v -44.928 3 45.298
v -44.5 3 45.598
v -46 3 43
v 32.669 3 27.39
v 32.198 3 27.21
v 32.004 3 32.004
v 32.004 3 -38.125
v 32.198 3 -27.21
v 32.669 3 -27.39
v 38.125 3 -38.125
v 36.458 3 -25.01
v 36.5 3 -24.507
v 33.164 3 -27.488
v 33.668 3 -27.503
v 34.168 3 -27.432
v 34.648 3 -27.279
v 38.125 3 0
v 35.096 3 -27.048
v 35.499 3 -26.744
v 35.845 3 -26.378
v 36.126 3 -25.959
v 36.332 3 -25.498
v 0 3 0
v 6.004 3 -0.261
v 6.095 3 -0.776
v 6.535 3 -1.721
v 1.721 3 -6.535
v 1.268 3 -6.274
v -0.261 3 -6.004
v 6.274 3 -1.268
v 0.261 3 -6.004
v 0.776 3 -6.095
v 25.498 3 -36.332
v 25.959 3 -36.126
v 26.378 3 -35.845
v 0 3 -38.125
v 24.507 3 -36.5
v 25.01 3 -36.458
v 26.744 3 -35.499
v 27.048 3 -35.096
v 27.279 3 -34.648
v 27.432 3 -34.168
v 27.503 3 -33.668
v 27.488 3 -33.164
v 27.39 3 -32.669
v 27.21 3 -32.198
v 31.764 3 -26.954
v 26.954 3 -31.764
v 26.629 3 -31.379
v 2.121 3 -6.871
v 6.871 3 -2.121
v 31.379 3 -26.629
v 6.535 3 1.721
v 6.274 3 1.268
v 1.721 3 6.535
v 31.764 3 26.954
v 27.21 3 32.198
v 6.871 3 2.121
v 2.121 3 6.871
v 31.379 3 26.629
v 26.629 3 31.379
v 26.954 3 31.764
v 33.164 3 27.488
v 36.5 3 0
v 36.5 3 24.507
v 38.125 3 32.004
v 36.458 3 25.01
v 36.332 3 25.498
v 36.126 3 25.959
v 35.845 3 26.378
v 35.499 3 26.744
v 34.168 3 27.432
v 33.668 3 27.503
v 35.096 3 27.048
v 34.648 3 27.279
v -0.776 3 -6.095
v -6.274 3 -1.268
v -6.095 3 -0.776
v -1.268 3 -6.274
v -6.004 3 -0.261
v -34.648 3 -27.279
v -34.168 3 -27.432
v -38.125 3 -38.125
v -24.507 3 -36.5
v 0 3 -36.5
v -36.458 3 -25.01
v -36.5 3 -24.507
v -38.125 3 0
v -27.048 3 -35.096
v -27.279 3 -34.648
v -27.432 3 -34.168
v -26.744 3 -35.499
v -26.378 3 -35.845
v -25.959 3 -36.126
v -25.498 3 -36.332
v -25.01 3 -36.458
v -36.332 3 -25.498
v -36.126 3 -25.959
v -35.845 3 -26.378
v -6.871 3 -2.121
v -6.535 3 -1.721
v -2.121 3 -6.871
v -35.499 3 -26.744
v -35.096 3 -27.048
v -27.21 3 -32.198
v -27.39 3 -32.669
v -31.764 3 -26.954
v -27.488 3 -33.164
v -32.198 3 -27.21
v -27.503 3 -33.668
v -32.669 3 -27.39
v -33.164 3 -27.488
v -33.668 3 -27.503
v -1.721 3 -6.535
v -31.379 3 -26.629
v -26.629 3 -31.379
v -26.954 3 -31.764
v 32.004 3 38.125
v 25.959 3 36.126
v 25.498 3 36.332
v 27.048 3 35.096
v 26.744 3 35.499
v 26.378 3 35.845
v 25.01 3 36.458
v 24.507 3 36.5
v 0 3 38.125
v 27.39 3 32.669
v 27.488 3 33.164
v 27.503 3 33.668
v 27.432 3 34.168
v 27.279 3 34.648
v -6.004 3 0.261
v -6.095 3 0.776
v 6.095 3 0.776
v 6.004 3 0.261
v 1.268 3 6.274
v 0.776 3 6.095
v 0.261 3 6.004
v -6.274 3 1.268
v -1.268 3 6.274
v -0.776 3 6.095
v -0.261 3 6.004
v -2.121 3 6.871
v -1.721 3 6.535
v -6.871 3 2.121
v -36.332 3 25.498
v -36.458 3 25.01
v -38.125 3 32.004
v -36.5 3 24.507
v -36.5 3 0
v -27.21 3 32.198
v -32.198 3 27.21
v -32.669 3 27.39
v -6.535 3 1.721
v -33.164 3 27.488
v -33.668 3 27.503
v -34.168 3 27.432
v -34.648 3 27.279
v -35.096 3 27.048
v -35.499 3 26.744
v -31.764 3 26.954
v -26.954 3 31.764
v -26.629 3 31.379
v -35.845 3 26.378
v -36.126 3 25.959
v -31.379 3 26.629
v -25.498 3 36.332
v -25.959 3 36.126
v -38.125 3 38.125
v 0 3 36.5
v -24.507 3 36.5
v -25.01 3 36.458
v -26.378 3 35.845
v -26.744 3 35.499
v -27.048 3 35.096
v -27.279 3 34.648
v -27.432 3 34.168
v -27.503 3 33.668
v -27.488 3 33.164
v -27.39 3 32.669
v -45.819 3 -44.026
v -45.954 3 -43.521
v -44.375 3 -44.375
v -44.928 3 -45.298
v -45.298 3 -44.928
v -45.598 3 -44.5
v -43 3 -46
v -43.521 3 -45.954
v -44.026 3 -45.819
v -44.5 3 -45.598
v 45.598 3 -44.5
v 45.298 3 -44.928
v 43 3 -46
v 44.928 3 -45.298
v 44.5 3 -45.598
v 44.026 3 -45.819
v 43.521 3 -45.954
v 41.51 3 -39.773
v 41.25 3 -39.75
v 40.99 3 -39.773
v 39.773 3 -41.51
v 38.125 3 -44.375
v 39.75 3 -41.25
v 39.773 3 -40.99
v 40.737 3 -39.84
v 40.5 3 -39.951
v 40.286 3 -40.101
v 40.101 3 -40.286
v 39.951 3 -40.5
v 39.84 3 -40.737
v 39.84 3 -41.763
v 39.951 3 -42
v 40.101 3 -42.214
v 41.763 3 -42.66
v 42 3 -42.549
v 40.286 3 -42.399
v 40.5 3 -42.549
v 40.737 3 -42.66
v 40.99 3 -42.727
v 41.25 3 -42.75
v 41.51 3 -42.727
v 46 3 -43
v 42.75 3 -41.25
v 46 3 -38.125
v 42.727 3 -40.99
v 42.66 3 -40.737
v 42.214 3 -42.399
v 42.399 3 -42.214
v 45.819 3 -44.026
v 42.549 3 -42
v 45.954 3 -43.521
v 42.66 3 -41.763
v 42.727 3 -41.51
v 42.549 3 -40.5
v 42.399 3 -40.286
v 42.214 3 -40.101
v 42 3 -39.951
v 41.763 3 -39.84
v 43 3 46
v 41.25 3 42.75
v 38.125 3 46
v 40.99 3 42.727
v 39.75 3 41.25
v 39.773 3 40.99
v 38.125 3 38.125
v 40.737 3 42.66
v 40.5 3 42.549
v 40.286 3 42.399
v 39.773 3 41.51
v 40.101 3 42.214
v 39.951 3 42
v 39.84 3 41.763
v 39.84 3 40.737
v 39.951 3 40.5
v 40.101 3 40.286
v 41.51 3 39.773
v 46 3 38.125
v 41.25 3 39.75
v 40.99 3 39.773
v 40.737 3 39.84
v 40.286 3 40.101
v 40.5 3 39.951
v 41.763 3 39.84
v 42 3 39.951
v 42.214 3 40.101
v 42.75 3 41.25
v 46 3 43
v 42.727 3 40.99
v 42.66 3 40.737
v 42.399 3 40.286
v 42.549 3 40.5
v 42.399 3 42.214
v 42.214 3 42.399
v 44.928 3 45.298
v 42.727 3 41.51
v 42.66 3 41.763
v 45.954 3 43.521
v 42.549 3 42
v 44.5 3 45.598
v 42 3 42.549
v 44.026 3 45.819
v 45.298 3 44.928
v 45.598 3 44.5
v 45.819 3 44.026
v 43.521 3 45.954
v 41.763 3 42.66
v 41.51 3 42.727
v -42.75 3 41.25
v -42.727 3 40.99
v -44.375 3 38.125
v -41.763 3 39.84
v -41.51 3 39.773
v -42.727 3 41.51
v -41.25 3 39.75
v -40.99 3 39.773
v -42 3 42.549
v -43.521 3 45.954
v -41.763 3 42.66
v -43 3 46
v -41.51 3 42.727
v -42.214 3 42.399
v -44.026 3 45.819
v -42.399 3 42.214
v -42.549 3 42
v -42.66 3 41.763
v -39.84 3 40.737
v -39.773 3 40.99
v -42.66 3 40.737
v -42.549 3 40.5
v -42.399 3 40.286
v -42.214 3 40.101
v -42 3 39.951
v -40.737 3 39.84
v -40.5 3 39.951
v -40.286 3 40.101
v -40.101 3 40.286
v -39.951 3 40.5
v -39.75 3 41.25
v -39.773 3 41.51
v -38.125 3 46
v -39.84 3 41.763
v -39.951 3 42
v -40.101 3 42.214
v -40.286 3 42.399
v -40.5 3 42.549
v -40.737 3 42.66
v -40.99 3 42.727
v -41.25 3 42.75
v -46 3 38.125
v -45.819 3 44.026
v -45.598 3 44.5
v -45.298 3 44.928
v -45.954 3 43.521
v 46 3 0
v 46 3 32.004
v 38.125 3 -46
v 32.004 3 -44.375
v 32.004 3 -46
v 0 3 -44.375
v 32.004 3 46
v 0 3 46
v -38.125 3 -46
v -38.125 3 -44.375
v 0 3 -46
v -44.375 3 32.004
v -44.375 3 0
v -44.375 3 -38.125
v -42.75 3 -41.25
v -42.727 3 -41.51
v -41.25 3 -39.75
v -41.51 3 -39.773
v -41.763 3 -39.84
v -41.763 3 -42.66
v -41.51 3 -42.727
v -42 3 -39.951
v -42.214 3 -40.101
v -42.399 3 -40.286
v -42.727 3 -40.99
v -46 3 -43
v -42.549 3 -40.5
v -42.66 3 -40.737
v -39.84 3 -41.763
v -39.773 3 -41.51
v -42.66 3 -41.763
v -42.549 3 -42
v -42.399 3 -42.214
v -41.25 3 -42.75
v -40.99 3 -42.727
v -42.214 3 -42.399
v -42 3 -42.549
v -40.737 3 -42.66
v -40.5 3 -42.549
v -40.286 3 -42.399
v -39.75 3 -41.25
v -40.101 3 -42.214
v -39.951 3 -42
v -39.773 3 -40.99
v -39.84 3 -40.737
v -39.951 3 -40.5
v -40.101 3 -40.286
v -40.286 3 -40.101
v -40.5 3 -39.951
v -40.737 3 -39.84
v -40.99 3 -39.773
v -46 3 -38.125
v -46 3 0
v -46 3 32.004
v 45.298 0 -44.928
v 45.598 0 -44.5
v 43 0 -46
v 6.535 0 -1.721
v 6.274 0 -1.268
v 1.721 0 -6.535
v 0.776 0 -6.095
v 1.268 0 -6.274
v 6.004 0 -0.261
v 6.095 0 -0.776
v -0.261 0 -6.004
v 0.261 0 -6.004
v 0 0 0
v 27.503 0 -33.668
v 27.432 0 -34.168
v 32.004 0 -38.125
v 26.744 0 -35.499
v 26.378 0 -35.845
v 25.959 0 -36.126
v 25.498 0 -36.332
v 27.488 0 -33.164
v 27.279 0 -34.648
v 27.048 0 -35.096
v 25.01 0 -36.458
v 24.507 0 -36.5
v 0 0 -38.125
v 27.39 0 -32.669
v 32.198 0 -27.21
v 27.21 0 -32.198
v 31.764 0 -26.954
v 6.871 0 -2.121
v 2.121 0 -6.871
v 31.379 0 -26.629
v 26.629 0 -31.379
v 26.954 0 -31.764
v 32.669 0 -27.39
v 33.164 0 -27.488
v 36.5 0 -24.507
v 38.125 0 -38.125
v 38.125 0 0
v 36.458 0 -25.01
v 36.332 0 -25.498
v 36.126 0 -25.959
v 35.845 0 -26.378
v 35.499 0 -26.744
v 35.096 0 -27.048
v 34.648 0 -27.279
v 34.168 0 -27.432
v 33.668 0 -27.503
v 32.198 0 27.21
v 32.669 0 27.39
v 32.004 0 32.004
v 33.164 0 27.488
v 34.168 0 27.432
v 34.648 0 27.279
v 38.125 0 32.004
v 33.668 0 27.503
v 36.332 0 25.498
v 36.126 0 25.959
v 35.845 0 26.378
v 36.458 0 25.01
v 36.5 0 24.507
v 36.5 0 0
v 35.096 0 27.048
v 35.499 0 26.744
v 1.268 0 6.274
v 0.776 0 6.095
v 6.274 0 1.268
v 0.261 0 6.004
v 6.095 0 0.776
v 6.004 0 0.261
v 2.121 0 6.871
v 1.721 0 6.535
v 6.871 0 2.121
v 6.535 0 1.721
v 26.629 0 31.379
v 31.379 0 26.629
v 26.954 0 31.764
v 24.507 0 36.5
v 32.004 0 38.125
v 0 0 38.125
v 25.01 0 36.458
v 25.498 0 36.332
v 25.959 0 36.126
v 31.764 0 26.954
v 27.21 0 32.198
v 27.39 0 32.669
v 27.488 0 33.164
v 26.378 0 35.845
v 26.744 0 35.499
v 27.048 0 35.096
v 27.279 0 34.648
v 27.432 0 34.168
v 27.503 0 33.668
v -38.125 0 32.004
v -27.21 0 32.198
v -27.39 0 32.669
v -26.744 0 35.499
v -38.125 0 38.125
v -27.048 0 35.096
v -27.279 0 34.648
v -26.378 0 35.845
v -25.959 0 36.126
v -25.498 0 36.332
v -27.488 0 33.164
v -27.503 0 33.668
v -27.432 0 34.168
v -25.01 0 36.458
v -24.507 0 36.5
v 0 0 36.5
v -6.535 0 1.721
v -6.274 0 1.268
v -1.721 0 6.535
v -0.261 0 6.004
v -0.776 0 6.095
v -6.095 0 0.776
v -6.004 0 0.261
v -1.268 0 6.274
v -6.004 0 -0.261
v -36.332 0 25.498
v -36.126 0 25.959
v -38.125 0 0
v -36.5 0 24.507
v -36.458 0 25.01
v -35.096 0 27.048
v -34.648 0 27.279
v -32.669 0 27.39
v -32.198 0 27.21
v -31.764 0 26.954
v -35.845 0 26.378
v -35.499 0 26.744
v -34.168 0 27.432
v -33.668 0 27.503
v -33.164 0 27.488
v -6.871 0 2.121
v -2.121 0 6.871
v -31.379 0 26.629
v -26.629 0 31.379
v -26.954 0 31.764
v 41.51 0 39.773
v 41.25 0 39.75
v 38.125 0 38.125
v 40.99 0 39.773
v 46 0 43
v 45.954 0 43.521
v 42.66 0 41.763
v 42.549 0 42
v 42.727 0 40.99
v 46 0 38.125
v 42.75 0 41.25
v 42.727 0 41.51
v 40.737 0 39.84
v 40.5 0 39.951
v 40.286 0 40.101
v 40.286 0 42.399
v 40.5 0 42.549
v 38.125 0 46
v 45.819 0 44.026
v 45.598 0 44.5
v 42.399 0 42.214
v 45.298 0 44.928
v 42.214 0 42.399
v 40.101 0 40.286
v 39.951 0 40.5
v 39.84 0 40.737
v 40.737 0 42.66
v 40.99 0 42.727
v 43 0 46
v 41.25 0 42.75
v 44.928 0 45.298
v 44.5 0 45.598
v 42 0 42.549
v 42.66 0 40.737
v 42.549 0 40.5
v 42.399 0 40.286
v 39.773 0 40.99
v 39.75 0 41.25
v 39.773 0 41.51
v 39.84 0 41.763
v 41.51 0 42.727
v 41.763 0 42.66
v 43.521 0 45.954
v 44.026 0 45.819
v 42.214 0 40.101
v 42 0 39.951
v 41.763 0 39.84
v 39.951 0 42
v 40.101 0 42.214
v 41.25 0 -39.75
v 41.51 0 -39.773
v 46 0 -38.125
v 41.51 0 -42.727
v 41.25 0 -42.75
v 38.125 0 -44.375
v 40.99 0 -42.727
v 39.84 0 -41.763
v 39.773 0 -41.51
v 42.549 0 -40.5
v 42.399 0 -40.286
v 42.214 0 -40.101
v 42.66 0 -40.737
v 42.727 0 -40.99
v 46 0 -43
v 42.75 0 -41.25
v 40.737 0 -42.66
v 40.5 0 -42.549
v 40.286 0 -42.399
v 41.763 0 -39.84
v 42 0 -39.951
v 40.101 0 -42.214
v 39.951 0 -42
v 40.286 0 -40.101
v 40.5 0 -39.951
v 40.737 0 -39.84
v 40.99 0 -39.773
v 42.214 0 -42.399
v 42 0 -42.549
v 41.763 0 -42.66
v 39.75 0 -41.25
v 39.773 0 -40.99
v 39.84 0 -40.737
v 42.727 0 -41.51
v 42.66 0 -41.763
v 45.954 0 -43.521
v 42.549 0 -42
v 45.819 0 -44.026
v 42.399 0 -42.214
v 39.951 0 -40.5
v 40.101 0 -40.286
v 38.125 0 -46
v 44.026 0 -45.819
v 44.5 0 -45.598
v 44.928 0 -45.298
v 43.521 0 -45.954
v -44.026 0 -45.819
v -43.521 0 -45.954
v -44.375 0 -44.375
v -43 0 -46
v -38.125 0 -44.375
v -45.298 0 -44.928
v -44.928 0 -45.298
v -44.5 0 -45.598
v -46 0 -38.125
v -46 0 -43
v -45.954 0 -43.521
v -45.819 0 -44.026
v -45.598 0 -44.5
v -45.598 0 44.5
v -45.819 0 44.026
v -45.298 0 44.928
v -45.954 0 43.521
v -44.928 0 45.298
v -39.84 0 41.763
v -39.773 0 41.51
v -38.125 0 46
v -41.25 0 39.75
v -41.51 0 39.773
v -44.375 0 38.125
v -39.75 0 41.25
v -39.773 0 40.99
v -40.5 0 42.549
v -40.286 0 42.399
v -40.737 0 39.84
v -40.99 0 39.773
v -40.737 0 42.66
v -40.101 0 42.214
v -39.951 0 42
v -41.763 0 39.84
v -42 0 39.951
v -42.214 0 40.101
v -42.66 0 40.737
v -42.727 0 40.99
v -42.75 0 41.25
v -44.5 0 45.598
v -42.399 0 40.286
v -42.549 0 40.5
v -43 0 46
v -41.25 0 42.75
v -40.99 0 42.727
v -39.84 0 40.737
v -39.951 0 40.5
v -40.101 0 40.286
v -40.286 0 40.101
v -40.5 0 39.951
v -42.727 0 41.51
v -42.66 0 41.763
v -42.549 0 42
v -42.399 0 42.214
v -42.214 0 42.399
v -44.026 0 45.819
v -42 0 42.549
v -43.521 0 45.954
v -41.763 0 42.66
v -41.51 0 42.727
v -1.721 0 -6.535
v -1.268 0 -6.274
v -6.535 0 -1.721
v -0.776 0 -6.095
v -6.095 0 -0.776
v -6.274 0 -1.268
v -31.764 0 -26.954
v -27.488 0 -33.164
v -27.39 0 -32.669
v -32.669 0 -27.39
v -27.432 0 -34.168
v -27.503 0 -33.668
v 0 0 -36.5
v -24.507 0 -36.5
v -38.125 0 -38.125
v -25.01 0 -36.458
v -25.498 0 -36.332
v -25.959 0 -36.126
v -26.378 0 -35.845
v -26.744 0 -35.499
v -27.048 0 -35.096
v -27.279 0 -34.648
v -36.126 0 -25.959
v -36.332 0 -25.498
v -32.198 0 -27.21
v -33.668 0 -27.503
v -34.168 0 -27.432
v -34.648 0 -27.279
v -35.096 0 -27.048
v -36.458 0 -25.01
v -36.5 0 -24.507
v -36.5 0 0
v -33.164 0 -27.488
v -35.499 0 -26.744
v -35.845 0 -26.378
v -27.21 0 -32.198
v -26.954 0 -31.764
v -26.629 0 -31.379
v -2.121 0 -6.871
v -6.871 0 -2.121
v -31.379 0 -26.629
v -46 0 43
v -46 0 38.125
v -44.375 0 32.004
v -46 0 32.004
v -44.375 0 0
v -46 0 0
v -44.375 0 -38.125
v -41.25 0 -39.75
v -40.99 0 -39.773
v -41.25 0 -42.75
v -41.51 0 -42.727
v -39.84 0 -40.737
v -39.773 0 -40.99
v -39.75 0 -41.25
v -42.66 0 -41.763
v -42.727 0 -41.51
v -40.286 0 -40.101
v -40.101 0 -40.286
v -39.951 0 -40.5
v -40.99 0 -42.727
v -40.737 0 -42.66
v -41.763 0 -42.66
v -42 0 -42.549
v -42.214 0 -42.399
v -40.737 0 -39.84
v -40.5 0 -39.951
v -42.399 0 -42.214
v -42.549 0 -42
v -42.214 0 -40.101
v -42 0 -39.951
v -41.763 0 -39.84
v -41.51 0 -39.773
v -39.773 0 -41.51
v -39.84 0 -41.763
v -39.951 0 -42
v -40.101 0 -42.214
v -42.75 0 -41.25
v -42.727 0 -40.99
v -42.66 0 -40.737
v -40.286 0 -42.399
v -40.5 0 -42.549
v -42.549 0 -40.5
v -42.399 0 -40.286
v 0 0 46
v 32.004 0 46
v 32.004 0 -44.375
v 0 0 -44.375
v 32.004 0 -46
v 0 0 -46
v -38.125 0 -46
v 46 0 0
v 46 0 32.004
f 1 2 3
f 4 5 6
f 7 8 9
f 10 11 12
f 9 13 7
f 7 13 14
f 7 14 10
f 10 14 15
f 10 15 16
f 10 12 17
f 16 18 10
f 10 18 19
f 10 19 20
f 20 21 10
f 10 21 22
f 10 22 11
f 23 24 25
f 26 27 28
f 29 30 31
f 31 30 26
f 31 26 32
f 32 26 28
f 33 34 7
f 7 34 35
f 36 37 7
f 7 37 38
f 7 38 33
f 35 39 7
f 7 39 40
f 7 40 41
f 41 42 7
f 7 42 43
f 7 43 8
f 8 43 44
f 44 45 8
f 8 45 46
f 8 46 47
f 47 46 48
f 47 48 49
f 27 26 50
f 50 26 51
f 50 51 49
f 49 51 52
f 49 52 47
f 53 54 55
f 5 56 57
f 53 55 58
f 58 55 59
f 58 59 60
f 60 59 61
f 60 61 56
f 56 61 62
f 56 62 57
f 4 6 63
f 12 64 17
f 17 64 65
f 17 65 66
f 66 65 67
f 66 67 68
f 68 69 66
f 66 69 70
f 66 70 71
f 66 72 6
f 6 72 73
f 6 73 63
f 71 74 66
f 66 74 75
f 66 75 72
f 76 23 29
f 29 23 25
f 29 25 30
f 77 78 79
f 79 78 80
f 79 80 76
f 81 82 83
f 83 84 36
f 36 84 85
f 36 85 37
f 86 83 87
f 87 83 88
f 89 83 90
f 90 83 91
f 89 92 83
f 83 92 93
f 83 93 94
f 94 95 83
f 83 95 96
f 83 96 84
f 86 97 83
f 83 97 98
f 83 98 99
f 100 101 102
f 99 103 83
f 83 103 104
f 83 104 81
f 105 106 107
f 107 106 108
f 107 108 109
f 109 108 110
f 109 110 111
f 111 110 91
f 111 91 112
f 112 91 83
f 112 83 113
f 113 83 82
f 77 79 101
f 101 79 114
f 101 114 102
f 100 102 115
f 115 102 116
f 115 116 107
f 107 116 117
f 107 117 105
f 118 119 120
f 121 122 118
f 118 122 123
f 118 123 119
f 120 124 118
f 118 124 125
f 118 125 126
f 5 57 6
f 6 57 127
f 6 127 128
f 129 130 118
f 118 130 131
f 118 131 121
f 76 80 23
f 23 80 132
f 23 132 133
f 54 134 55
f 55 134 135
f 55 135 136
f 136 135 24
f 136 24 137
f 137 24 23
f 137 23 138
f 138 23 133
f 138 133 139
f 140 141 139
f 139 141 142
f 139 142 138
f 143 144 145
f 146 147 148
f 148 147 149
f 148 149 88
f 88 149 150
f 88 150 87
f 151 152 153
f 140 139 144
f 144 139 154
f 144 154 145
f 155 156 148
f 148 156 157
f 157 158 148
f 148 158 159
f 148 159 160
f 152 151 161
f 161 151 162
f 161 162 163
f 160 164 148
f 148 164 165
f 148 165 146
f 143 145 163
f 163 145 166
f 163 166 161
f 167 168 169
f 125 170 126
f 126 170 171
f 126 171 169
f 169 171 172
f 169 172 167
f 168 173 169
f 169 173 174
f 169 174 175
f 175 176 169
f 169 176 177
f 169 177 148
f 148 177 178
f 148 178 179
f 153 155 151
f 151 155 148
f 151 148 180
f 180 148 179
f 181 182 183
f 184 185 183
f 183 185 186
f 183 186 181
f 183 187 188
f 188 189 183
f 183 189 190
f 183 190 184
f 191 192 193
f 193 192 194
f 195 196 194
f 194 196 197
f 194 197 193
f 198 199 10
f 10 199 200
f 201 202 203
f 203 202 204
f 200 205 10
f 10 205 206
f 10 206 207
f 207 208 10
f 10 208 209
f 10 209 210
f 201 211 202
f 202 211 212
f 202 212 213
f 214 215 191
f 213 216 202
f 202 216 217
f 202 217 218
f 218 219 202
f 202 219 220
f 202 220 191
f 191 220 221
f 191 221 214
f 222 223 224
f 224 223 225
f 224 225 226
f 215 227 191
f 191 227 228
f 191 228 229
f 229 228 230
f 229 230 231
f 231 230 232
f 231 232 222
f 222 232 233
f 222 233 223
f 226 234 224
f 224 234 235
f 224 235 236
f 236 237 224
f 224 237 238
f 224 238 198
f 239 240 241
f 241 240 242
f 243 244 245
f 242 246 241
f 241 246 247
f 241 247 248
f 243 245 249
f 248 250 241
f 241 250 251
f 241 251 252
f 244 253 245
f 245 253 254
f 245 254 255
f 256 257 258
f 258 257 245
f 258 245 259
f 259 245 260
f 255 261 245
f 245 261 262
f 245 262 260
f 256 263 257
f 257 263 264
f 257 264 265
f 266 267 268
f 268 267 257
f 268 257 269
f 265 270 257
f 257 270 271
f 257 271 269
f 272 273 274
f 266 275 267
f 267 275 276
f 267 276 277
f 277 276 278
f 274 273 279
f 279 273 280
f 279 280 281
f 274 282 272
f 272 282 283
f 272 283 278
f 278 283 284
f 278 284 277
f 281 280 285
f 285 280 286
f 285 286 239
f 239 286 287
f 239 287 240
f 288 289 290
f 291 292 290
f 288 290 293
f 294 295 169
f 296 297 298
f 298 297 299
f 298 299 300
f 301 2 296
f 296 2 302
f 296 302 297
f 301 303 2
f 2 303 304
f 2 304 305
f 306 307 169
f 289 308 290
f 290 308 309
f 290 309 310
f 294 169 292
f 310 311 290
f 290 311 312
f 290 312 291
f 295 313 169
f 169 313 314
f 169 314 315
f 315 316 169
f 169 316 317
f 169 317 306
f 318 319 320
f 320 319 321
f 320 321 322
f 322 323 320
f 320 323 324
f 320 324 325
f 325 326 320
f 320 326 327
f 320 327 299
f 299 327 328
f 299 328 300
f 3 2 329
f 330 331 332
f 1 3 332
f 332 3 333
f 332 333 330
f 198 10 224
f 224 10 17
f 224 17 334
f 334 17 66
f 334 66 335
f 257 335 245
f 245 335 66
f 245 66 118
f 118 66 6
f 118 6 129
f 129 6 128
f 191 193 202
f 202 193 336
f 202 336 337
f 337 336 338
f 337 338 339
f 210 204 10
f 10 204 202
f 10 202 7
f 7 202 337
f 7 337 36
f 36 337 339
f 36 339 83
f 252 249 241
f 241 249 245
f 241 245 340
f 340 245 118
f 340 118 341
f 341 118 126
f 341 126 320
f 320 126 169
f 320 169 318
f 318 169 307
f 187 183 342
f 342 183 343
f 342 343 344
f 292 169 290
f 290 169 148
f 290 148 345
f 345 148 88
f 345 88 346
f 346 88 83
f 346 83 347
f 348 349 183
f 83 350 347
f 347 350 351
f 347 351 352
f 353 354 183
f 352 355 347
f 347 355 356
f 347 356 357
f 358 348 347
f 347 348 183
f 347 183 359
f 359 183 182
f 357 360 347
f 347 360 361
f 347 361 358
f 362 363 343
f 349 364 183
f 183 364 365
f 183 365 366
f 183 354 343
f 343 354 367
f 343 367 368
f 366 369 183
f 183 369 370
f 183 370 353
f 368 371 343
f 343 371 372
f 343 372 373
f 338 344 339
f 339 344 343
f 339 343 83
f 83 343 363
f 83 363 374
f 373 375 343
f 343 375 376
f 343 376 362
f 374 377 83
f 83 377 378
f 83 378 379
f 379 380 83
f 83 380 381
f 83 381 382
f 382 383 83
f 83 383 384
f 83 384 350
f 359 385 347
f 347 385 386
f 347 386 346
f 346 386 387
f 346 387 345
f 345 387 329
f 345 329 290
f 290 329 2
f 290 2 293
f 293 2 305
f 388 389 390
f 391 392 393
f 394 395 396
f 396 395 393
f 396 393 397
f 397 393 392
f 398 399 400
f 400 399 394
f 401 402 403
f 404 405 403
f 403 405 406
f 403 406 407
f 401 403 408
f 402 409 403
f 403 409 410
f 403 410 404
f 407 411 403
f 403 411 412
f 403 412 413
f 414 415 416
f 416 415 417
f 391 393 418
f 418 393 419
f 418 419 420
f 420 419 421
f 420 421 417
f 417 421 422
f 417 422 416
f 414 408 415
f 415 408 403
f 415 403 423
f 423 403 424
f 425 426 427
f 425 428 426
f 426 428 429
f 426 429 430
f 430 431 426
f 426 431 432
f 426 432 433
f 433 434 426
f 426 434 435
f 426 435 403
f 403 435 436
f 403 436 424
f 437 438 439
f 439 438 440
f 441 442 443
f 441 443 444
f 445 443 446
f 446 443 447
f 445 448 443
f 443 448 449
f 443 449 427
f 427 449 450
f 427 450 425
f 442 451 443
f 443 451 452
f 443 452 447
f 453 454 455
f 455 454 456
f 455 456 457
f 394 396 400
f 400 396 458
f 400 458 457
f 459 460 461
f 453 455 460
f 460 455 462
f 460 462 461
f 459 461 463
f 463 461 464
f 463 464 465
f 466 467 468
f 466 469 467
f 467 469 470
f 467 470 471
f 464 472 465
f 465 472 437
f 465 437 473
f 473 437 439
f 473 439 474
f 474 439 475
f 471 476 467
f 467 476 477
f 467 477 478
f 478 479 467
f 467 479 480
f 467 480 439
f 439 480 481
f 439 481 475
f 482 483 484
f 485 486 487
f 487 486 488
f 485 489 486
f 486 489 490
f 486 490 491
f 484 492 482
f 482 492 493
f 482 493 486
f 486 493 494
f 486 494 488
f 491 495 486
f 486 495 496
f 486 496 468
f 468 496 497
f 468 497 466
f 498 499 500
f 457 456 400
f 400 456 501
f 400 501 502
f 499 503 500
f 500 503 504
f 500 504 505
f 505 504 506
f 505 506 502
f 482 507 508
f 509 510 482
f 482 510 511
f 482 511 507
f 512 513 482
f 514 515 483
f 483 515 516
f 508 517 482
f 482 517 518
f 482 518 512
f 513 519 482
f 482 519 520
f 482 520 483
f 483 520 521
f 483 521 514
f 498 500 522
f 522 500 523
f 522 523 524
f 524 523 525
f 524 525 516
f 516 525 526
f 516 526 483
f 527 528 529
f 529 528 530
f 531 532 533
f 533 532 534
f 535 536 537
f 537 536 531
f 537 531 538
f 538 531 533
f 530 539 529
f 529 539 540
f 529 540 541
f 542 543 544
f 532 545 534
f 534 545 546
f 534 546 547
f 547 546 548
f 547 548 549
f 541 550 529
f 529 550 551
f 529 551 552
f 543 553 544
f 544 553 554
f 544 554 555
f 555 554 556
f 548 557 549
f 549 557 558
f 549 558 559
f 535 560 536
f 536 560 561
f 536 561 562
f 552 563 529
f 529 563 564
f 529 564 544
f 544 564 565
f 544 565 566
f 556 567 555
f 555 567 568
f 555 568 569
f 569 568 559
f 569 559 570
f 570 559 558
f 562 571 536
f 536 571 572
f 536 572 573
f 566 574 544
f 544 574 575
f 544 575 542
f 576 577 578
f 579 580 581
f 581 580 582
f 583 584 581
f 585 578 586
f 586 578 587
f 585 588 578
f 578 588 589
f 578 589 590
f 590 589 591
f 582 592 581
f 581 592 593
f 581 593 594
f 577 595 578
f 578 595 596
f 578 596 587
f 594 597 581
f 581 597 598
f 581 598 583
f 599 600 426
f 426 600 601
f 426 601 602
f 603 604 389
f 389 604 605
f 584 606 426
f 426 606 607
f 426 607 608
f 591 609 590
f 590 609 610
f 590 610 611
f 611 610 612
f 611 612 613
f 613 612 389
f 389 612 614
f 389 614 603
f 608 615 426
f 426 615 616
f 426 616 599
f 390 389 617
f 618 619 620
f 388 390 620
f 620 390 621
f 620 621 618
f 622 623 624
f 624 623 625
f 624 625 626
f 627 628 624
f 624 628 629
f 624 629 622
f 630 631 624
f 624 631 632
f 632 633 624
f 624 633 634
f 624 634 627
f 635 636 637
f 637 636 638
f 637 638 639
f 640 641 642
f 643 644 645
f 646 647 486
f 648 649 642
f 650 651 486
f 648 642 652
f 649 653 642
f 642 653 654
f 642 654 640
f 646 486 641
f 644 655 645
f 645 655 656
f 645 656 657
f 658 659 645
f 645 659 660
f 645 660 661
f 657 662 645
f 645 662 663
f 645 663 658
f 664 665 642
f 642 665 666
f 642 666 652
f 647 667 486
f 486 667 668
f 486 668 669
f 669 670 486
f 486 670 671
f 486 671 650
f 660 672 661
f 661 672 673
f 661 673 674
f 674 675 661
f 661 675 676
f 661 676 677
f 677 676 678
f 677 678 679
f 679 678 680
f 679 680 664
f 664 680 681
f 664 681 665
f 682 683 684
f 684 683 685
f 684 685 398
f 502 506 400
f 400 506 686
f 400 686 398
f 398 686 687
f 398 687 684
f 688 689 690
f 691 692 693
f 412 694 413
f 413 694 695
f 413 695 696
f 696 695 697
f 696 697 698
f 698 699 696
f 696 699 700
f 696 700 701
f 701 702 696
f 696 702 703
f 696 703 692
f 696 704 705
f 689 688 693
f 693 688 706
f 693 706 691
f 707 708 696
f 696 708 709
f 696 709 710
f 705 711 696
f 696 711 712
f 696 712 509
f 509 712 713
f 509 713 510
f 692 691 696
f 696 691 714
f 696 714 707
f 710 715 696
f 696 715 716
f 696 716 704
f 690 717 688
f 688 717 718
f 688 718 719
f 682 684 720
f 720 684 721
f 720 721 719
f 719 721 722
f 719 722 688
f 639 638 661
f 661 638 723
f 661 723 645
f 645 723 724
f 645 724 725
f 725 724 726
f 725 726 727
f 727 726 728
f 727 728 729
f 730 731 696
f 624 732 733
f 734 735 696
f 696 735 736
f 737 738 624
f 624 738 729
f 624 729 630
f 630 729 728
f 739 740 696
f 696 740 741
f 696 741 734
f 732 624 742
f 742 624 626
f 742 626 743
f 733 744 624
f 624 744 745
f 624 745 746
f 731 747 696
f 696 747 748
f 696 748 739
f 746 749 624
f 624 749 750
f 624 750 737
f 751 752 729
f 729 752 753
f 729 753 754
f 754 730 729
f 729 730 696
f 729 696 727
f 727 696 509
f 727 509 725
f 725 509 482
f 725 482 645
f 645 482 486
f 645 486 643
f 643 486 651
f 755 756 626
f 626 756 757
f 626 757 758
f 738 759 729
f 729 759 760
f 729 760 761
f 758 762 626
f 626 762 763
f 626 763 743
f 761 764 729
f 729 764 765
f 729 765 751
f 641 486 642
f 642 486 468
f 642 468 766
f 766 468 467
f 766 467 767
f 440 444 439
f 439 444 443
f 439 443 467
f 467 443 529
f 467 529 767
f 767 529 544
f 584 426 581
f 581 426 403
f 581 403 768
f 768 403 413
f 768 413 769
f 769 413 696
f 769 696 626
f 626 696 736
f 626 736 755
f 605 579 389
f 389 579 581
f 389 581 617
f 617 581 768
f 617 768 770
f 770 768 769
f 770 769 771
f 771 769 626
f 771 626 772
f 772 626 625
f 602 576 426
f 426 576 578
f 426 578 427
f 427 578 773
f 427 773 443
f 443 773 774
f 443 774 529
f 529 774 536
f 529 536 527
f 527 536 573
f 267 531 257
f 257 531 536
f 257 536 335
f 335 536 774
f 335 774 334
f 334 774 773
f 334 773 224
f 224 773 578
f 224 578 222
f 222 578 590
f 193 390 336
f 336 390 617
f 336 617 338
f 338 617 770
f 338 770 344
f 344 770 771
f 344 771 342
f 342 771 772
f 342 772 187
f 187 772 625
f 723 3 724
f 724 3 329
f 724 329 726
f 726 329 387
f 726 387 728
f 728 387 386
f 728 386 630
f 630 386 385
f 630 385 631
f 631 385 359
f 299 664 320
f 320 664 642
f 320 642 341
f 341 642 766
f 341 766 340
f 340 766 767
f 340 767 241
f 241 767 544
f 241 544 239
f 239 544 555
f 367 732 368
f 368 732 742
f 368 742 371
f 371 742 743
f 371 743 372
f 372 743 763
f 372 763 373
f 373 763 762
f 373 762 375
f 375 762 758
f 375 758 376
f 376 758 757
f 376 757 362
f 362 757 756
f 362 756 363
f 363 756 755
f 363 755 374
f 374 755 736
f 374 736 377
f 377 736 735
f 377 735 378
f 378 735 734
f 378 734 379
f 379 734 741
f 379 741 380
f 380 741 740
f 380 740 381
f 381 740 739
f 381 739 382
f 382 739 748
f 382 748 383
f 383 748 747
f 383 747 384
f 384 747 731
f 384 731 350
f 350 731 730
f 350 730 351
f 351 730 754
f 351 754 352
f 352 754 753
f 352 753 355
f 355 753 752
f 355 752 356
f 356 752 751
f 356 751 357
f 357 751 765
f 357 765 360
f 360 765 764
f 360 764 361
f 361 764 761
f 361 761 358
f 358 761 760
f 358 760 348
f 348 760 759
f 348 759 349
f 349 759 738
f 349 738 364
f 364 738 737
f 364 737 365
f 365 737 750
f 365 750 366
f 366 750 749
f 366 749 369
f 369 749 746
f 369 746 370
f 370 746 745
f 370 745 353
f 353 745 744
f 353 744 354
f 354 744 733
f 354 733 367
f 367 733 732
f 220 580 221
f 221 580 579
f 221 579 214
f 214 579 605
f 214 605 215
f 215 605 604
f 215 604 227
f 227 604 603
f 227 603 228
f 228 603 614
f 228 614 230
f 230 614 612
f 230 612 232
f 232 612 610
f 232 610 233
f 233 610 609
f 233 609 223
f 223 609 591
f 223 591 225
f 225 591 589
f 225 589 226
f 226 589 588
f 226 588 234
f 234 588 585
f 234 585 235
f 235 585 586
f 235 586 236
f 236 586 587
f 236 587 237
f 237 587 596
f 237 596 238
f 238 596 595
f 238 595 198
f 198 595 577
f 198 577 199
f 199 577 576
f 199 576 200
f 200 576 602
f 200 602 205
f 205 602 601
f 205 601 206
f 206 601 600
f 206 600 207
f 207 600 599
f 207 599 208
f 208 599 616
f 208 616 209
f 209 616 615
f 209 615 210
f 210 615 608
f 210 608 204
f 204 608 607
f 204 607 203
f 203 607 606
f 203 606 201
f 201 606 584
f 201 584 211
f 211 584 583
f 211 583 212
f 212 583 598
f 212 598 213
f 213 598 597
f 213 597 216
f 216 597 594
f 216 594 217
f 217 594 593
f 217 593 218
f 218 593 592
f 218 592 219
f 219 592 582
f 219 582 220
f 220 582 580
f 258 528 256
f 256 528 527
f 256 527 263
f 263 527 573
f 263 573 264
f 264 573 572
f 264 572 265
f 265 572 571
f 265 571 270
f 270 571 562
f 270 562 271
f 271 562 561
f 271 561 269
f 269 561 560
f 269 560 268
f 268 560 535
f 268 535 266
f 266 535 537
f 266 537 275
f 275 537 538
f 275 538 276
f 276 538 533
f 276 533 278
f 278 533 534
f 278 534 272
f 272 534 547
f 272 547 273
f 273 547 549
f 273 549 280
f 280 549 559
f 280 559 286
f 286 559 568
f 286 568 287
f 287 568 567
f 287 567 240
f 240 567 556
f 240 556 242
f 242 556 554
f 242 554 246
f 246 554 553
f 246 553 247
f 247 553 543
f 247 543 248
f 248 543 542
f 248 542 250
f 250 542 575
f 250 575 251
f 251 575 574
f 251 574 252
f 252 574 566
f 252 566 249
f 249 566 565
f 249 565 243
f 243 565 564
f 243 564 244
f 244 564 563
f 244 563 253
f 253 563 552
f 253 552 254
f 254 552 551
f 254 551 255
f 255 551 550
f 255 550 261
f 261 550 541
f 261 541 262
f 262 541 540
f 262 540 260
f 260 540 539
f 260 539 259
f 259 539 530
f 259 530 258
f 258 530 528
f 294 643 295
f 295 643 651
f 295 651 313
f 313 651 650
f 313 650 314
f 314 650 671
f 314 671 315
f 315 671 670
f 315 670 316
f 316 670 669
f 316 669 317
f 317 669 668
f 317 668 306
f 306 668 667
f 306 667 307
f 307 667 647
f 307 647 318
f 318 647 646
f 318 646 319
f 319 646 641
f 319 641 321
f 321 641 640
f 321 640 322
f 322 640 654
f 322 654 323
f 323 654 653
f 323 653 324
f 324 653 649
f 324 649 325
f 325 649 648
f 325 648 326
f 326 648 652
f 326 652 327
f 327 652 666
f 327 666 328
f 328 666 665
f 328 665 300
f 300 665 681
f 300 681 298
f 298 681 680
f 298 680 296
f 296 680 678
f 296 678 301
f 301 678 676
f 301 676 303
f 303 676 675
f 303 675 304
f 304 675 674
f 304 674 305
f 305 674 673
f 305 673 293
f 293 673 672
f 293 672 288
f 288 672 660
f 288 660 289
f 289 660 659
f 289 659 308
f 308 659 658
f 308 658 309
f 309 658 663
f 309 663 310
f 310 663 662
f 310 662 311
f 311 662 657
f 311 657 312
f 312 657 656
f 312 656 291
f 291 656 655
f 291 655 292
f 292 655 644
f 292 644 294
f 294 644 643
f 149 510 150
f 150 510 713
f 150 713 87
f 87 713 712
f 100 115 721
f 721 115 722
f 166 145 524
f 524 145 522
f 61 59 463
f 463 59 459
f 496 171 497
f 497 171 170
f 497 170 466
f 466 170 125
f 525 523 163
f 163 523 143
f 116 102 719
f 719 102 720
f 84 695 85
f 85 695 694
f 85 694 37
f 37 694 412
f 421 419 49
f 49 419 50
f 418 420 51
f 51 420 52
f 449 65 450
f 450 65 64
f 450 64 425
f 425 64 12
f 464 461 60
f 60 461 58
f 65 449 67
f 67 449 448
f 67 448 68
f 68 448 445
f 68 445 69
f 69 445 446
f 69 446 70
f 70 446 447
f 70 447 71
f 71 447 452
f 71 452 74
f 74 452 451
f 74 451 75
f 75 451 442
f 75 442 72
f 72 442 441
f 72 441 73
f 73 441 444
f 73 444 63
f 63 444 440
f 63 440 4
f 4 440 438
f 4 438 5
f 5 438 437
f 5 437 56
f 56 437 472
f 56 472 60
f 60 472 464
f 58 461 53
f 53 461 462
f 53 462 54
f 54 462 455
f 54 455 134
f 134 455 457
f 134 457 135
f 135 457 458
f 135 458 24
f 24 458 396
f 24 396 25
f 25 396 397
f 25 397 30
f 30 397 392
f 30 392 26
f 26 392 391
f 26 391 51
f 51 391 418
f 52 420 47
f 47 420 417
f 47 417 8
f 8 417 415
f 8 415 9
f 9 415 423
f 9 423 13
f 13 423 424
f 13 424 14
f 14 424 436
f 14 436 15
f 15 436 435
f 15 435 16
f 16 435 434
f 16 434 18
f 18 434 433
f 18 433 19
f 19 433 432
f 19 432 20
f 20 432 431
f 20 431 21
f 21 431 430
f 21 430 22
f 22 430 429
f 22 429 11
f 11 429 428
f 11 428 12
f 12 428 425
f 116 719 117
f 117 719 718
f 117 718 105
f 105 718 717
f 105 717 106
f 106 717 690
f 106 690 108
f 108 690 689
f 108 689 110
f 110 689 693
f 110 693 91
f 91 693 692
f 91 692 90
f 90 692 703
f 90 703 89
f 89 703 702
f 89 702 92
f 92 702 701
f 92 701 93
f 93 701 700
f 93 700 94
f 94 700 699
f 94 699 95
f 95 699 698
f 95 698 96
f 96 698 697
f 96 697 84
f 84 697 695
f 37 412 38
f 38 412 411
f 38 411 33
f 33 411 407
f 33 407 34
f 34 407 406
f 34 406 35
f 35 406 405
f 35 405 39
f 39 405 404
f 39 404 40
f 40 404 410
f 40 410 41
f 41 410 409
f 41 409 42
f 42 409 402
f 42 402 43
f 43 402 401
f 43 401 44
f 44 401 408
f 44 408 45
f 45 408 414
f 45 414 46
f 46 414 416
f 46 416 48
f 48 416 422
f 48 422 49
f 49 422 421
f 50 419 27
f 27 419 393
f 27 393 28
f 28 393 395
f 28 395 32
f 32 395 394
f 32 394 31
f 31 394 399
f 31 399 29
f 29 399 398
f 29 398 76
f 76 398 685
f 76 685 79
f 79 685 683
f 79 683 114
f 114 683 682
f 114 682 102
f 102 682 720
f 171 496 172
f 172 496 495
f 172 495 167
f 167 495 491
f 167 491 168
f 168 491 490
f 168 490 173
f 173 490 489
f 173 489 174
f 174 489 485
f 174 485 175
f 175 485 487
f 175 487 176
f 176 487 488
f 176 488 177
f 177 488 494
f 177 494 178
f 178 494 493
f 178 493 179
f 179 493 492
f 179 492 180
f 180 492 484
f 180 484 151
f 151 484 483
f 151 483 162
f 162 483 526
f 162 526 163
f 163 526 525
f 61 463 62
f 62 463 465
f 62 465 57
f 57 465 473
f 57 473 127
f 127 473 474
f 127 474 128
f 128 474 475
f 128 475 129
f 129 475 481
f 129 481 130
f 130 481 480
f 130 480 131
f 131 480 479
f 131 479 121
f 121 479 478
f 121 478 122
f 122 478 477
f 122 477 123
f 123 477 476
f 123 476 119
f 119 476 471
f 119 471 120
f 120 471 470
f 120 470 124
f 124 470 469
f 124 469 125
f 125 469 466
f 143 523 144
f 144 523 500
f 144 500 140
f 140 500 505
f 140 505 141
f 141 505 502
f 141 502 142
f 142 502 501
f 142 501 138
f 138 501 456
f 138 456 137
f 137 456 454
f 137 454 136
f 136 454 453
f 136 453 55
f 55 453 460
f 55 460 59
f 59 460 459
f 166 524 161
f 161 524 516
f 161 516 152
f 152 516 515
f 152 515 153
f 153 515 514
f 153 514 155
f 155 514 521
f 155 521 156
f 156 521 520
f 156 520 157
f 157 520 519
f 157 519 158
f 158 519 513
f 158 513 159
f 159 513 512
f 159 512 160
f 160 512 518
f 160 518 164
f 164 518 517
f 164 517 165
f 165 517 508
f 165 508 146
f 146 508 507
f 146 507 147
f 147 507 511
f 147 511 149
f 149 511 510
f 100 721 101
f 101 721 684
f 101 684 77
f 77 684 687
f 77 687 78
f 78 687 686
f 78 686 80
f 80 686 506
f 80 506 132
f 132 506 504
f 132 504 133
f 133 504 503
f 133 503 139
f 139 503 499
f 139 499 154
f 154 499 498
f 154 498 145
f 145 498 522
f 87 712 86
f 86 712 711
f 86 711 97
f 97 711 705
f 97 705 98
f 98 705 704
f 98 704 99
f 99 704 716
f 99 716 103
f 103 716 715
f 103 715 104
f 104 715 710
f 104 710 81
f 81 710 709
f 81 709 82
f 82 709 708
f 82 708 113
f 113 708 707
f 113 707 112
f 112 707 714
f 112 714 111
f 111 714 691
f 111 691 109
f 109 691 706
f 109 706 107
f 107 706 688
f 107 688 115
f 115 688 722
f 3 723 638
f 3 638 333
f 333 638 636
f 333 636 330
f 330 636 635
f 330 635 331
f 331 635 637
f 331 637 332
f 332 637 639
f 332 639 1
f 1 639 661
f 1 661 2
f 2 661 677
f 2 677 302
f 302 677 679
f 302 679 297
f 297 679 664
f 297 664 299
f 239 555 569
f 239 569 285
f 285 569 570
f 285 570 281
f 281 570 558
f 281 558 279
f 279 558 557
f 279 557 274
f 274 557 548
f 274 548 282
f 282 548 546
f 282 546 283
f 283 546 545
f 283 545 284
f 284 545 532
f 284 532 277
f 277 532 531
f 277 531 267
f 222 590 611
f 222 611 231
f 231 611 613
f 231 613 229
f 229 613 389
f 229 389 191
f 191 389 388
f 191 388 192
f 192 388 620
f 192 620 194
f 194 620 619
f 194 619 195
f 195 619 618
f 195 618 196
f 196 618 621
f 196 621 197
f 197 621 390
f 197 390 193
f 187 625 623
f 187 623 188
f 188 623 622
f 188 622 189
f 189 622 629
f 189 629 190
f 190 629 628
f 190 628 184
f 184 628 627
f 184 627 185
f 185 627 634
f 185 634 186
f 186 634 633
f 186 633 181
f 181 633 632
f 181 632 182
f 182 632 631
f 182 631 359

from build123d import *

# Parameters (mm, degrees)
SKETCH_1_R      = 1.5
EXTRUDE_1_DEPTH = 3


with BuildPart() as part:
    # 草圖1 → 填料-伸長1 (new body)
    with BuildSketch(Plane(origin=(0, 3, 0), x_dir=(1, 0, 0), z_dir=(0, 1, 0))):
        with BuildLine():
            Line((-46, 43), (-46, -43))
            ThreePointArc((-46, -43), (-45.121320344, -45.121320344), (-43, -46))
            Line((-43, -46), (43, -46))
            ThreePointArc((43, -46), (45.121320344, -45.121320344), (46, -43))
            Line((46, -43), (46, 43))
            ThreePointArc((46, 43), (45.121320344, 45.121320344), (43, 46))
            Line((43, 46), (-43, 46))
            ThreePointArc((-43, 46), (-45.121320344, 45.121320344), (-46, 43))
        make_face()
        with Locations((41.25, -41.25)):
            Circle(SKETCH_1_R, mode=Mode.SUBTRACT)
        with Locations((-41.25, 41.25)):
            Circle(SKETCH_1_R, mode=Mode.SUBTRACT)
        with Locations((41.25, 41.25)):
            Circle(SKETCH_1_R, mode=Mode.SUBTRACT)
        with Locations((-41.25, -41.25)):
            Circle(SKETCH_1_R, mode=Mode.SUBTRACT)
        with BuildLine():
            Line((-31.378679656, 26.628679656), (-6.871320344, 2.121320344))
            ThreePointArc((-6.871320344, 2.121320344), (-5.992640687, 0), (-6.871320344, -2.121320344))
            Line((-6.871320344, -2.121320344), (-31.378679656, -26.628679656))
            ThreePointArc((-31.378679656, -26.628679656), (-34.648050297, -27.27899791), (-36.5, -24.507359313))
            Line((-36.5, -24.507359313), (-36.5, 24.507359313))
            ThreePointArc((-36.5, 24.507359313), (-34.648050297, 27.27899791), (-31.378679656, 26.628679656))
        make_face(mode=Mode.SUBTRACT)
        with BuildLine():
            Line((24.507359313, -36.5), (-24.507359313, -36.5))
            ThreePointArc((-24.507359313, -36.5), (-27.27899791, -34.648050297), (-26.628679656, -31.378679656))
            Line((-26.628679656, -31.378679656), (-2.121320344, -6.871320344))
            ThreePointArc((-2.121320344, -6.871320344), (0, -5.992640687), (2.121320344, -6.871320344))
            Line((2.121320344, -6.871320344), (26.628679656, -31.378679656))
            ThreePointArc((26.628679656, -31.378679656), (27.27899791, -34.648050297), (24.507359313, -36.5))
        make_face(mode=Mode.SUBTRACT)
        with BuildLine():
            Line((-24.507359313, 36.5), (24.507359313, 36.5))
            ThreePointArc((24.507359313, 36.5), (27.27899791, 34.648050297), (26.628679656, 31.378679656))
            Line((26.628679656, 31.378679656), (2.121320344, 6.871320344))
            ThreePointArc((2.121320344, 6.871320344), (0, 5.992640687), (-2.121320344, 6.871320344))
            Line((-2.121320344, 6.871320344), (-26.628679656, 31.378679656))
            ThreePointArc((-26.628679656, 31.378679656), (-27.27899791, 34.648050297), (-24.507359313, 36.5))
        make_face(mode=Mode.SUBTRACT)
        with BuildLine():
            Line((36.5, 24.507359313), (36.5, -24.507359313))
            ThreePointArc((36.5, -24.507359313), (34.648050297, -27.27899791), (31.378679656, -26.628679656))
            Line((31.378679656, -26.628679656), (6.871320344, -2.121320344))
            ThreePointArc((6.871320344, -2.121320344), (5.992640687, 0), (6.871320344, 2.121320344))
            Line((6.871320344, 2.121320344), (31.378679656, 26.628679656))
            ThreePointArc((31.378679656, 26.628679656), (34.648050297, 27.27899791), (36.5, 24.507359313))
        make_face(mode=Mode.SUBTRACT)
    extrude(amount=-EXTRUDE_1_DEPTH)


solid = part.part
